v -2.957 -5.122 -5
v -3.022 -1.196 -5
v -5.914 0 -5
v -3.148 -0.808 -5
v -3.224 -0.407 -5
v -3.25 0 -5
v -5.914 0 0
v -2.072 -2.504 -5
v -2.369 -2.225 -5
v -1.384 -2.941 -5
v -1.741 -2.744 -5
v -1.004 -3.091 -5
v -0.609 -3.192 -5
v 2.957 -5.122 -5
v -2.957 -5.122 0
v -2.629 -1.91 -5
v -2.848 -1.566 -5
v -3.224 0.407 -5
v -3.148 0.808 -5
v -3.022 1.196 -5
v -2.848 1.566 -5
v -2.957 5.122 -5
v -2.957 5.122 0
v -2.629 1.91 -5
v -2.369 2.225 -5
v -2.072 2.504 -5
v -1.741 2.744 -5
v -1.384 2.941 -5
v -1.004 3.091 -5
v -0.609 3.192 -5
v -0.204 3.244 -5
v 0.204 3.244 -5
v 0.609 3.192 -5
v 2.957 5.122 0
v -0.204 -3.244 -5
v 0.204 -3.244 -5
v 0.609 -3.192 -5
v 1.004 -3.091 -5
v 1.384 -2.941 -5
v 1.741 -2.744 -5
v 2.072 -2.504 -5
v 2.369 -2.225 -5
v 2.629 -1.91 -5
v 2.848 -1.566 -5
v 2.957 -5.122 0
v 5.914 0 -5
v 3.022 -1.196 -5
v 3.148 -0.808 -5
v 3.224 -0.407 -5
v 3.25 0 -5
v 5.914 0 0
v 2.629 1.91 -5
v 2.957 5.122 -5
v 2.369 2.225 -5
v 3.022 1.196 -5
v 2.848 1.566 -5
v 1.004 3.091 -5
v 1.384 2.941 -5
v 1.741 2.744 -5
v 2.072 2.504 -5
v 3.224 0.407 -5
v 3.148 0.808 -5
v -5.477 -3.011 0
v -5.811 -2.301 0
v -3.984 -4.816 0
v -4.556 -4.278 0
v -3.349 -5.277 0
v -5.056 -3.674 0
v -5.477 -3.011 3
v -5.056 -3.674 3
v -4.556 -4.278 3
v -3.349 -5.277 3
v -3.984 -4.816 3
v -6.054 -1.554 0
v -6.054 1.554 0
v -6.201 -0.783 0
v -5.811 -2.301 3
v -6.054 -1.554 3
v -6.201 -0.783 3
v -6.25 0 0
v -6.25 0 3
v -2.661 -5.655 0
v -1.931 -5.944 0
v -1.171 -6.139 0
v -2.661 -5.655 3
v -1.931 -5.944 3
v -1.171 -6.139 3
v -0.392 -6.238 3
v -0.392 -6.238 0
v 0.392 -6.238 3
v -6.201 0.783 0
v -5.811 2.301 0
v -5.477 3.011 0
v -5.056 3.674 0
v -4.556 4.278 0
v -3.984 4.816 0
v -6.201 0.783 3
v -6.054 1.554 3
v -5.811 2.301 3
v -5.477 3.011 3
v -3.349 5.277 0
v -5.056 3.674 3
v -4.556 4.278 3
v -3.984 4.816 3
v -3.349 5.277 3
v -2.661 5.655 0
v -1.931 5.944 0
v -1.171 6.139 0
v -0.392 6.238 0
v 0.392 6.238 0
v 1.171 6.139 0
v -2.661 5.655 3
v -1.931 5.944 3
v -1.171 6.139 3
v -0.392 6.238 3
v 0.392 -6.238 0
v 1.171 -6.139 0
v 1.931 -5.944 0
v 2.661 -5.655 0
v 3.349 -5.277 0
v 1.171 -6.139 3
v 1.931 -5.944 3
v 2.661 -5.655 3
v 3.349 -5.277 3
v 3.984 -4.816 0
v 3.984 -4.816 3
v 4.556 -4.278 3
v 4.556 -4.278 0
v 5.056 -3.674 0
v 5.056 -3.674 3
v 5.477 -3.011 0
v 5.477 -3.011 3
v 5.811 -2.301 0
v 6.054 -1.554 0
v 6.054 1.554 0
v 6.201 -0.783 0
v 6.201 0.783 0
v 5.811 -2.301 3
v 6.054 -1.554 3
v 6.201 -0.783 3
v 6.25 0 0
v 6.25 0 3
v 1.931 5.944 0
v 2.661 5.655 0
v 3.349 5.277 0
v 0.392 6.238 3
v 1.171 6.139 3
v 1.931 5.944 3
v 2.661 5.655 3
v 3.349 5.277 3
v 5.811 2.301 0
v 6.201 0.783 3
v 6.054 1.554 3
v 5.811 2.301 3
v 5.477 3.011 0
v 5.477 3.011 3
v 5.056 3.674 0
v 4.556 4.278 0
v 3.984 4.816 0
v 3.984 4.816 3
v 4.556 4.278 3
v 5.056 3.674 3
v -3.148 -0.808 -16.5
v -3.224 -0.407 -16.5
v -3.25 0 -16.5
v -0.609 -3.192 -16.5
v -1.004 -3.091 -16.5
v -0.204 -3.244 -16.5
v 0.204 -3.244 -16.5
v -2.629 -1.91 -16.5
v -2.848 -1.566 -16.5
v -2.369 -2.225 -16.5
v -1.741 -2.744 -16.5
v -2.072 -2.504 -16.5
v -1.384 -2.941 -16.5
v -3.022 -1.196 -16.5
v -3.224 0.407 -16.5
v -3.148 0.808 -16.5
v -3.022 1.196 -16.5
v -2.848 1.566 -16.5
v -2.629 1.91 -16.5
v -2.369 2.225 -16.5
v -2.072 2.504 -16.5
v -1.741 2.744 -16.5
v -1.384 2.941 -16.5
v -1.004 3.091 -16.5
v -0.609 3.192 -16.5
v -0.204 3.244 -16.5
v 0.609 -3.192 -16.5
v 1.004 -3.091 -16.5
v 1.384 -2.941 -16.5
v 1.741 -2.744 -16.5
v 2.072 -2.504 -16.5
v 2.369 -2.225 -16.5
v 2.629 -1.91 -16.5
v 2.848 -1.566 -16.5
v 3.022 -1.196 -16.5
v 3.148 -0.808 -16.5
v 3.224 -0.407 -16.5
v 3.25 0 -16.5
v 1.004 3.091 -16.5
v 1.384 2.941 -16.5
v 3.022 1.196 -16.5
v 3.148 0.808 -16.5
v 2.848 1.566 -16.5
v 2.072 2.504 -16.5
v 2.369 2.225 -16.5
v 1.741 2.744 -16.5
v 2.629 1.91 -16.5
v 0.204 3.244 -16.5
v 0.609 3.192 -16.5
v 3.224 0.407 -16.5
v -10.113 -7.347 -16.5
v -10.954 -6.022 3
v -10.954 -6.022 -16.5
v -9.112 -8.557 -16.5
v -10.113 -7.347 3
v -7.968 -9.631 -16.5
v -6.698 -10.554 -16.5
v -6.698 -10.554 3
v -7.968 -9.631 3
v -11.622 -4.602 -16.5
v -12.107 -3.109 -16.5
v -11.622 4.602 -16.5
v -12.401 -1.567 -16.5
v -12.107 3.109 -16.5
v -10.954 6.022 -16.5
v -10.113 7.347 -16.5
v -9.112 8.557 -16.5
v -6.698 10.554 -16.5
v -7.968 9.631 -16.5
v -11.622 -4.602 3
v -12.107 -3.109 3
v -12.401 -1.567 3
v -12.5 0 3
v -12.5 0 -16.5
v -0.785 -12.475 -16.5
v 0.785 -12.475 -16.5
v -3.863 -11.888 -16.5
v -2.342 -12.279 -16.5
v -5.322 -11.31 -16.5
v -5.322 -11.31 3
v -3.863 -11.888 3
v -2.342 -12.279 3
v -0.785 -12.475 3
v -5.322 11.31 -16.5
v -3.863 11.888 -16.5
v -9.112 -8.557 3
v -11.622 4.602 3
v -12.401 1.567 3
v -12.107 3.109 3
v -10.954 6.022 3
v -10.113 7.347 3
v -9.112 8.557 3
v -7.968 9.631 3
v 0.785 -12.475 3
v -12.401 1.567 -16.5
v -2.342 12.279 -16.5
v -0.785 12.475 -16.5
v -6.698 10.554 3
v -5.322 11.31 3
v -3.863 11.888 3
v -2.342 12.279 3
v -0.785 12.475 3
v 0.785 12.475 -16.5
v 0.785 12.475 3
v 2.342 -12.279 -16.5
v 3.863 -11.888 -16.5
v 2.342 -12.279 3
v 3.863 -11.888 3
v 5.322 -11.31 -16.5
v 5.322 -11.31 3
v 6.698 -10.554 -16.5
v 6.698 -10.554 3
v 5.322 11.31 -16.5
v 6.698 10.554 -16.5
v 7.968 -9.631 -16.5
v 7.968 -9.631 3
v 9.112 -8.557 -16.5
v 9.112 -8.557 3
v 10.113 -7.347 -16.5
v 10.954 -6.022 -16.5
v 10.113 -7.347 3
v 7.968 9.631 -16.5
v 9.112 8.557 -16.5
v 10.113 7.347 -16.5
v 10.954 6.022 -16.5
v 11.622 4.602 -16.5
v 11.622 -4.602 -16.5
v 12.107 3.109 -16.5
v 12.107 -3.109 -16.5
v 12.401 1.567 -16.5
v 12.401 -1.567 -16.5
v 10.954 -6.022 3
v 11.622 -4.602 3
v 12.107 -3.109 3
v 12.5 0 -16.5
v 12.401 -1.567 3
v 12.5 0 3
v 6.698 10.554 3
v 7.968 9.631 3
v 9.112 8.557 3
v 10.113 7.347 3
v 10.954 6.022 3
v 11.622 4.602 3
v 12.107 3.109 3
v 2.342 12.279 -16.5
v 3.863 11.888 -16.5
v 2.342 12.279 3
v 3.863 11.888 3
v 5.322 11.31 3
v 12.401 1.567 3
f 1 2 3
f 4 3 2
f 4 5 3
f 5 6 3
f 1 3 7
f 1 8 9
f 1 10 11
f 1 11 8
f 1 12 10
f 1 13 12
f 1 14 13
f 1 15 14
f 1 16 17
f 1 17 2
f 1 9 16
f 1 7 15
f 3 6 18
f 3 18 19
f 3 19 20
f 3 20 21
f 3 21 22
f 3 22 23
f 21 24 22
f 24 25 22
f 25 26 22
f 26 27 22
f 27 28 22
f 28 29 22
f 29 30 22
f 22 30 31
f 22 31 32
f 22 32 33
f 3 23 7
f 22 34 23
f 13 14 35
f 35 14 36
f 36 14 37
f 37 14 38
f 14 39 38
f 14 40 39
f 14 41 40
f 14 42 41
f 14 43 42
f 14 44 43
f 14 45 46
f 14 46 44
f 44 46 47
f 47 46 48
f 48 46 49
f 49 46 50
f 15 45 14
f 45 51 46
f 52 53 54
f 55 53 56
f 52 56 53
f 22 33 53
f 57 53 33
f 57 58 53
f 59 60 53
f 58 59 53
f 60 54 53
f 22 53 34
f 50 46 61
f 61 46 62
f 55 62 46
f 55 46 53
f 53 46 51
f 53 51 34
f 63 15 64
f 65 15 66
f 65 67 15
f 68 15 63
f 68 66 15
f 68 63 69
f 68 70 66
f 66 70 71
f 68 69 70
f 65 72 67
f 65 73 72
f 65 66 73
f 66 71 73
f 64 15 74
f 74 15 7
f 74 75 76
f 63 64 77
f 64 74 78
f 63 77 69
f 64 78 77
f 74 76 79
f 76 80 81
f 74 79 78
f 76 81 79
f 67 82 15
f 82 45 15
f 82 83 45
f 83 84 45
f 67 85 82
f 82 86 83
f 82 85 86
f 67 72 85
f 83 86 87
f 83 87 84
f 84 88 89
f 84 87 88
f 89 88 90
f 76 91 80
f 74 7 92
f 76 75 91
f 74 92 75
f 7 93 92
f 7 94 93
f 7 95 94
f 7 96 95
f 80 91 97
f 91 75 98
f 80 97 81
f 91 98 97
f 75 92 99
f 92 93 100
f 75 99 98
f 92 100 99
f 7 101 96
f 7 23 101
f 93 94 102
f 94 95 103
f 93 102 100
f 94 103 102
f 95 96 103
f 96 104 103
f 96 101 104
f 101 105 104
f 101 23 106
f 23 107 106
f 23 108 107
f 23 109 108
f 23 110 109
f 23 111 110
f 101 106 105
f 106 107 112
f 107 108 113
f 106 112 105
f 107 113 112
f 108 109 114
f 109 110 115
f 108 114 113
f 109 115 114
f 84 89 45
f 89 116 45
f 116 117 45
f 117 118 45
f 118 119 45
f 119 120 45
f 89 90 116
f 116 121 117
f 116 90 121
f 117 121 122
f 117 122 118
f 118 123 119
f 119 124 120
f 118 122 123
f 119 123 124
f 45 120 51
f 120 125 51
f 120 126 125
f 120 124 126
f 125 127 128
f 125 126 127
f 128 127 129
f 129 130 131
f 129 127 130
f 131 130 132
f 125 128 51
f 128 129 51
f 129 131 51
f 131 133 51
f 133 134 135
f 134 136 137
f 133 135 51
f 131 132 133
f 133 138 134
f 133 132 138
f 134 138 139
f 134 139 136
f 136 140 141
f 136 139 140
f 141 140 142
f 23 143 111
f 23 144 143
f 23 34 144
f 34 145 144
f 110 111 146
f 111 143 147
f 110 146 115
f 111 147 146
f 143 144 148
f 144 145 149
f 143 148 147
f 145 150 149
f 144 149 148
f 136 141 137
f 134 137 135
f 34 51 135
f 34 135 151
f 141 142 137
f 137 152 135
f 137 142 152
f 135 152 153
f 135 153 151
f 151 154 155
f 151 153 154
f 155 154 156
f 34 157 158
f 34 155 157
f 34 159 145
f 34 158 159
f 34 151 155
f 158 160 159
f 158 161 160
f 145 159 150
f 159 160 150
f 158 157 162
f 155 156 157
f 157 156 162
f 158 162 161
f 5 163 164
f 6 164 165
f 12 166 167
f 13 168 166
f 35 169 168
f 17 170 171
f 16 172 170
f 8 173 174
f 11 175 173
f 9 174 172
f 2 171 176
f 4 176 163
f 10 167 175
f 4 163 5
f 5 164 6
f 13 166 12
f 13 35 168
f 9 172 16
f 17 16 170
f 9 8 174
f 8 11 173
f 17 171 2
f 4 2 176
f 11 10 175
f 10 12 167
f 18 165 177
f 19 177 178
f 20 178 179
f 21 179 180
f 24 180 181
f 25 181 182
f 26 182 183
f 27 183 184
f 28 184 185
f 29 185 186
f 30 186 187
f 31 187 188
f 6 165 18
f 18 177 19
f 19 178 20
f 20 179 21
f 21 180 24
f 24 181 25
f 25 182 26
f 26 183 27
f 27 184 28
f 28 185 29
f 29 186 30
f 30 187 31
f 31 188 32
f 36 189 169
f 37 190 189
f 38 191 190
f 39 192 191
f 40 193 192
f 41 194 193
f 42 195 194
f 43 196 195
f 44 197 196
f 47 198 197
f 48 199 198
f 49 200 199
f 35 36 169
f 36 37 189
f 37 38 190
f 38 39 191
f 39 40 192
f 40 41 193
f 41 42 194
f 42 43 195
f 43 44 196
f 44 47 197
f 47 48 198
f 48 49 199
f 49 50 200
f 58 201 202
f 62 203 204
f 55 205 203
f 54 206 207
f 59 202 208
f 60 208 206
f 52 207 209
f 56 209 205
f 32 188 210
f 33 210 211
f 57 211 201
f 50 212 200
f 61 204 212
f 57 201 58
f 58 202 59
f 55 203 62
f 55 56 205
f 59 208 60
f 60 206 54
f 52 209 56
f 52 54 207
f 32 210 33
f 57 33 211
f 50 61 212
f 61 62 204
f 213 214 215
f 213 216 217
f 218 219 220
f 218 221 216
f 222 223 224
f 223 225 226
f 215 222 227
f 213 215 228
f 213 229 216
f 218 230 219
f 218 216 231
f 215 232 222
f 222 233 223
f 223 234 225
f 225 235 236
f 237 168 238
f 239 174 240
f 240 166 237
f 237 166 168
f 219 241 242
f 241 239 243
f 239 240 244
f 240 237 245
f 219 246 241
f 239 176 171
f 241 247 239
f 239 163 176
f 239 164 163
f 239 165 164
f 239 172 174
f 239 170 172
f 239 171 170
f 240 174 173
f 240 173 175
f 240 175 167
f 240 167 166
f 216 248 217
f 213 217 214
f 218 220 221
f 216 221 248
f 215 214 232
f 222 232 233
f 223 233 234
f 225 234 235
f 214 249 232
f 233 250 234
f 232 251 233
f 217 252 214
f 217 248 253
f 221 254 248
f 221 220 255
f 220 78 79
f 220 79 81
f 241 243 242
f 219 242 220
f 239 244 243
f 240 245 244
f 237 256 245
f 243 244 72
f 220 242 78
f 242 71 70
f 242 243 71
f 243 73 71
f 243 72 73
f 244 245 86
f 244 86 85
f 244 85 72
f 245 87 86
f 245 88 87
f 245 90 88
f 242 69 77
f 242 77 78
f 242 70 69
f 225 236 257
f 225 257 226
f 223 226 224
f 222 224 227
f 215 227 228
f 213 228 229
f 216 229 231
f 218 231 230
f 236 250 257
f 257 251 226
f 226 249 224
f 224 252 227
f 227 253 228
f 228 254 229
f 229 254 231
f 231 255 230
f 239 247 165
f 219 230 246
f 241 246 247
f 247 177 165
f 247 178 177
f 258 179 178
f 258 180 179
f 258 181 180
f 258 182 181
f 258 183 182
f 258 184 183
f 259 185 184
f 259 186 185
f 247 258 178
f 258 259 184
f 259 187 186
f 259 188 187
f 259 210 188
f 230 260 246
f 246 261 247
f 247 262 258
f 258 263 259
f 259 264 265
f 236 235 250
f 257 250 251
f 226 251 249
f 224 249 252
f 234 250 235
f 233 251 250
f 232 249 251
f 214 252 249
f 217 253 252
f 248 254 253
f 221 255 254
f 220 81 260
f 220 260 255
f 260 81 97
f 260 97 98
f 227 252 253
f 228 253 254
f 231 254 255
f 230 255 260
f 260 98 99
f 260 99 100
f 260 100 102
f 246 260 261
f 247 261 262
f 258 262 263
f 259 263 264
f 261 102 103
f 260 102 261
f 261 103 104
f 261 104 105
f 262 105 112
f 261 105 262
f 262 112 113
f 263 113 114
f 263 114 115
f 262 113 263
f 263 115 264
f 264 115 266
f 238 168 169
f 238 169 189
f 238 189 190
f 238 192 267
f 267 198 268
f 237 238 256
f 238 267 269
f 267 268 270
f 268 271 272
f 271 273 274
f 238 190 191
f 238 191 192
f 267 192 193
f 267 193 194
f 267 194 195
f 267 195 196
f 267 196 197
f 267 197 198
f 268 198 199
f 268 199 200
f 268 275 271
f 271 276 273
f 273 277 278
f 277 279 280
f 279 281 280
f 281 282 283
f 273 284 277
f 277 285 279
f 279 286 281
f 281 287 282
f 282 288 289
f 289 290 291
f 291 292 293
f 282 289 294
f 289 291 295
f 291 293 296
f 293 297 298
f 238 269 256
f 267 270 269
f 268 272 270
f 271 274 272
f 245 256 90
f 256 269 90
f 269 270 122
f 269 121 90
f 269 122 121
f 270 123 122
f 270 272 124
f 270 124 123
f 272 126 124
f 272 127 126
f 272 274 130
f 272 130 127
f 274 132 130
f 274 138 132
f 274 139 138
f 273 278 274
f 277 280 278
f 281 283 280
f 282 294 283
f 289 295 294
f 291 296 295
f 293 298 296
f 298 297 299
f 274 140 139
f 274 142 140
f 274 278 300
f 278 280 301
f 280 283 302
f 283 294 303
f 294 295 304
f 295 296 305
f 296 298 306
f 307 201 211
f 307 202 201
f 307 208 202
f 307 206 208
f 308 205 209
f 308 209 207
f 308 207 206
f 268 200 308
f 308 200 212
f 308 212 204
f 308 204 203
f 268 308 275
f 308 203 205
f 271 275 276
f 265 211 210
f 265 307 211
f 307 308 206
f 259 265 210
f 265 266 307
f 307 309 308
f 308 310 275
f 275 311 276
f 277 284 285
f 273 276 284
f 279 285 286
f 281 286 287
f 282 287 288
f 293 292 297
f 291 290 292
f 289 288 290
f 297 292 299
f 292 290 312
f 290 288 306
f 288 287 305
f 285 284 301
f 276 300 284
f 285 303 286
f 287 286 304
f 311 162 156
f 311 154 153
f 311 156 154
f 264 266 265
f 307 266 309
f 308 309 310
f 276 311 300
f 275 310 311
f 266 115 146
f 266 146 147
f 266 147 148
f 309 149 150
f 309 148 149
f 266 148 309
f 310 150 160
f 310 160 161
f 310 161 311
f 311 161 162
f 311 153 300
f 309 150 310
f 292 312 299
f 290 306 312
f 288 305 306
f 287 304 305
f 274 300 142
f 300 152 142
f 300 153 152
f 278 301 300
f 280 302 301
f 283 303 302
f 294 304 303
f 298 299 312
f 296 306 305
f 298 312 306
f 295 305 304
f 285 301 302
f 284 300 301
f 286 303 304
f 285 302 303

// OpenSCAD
$fn = 50;

difference() {
	union() {
		translate(v = [0, 0, -16.5]) {
			cylinder(h = 19.5, r = 12.5);
		}
	}
	union() {
		translate(v = [0, 0, 0]) {
			rotate(a = [0, 0, 0]) {
				difference() {
					union() {
						translate(v = [0, 0, -5]) {
							linear_extrude(height = 5) {
								polygon(points = [[5.914249999999999, 0.0], [2.957125, 5.1218907443321156], [-2.9571249999999982, 5.1218907443321156], [-5.914249999999999, 7.242867331857232e-16], [-2.9571250000000022, -5.121890744332115], [2.9571249999999956, -5.121890744332118]]);
							}
						}
					}
					union();
				}
			}
		}
		#cylinder(h = 3, r = 6.25);
		#translate(v = [0, 0, -100.0]) {
			cylinder(h = 200, r = 3.25);
		}
	}
}
